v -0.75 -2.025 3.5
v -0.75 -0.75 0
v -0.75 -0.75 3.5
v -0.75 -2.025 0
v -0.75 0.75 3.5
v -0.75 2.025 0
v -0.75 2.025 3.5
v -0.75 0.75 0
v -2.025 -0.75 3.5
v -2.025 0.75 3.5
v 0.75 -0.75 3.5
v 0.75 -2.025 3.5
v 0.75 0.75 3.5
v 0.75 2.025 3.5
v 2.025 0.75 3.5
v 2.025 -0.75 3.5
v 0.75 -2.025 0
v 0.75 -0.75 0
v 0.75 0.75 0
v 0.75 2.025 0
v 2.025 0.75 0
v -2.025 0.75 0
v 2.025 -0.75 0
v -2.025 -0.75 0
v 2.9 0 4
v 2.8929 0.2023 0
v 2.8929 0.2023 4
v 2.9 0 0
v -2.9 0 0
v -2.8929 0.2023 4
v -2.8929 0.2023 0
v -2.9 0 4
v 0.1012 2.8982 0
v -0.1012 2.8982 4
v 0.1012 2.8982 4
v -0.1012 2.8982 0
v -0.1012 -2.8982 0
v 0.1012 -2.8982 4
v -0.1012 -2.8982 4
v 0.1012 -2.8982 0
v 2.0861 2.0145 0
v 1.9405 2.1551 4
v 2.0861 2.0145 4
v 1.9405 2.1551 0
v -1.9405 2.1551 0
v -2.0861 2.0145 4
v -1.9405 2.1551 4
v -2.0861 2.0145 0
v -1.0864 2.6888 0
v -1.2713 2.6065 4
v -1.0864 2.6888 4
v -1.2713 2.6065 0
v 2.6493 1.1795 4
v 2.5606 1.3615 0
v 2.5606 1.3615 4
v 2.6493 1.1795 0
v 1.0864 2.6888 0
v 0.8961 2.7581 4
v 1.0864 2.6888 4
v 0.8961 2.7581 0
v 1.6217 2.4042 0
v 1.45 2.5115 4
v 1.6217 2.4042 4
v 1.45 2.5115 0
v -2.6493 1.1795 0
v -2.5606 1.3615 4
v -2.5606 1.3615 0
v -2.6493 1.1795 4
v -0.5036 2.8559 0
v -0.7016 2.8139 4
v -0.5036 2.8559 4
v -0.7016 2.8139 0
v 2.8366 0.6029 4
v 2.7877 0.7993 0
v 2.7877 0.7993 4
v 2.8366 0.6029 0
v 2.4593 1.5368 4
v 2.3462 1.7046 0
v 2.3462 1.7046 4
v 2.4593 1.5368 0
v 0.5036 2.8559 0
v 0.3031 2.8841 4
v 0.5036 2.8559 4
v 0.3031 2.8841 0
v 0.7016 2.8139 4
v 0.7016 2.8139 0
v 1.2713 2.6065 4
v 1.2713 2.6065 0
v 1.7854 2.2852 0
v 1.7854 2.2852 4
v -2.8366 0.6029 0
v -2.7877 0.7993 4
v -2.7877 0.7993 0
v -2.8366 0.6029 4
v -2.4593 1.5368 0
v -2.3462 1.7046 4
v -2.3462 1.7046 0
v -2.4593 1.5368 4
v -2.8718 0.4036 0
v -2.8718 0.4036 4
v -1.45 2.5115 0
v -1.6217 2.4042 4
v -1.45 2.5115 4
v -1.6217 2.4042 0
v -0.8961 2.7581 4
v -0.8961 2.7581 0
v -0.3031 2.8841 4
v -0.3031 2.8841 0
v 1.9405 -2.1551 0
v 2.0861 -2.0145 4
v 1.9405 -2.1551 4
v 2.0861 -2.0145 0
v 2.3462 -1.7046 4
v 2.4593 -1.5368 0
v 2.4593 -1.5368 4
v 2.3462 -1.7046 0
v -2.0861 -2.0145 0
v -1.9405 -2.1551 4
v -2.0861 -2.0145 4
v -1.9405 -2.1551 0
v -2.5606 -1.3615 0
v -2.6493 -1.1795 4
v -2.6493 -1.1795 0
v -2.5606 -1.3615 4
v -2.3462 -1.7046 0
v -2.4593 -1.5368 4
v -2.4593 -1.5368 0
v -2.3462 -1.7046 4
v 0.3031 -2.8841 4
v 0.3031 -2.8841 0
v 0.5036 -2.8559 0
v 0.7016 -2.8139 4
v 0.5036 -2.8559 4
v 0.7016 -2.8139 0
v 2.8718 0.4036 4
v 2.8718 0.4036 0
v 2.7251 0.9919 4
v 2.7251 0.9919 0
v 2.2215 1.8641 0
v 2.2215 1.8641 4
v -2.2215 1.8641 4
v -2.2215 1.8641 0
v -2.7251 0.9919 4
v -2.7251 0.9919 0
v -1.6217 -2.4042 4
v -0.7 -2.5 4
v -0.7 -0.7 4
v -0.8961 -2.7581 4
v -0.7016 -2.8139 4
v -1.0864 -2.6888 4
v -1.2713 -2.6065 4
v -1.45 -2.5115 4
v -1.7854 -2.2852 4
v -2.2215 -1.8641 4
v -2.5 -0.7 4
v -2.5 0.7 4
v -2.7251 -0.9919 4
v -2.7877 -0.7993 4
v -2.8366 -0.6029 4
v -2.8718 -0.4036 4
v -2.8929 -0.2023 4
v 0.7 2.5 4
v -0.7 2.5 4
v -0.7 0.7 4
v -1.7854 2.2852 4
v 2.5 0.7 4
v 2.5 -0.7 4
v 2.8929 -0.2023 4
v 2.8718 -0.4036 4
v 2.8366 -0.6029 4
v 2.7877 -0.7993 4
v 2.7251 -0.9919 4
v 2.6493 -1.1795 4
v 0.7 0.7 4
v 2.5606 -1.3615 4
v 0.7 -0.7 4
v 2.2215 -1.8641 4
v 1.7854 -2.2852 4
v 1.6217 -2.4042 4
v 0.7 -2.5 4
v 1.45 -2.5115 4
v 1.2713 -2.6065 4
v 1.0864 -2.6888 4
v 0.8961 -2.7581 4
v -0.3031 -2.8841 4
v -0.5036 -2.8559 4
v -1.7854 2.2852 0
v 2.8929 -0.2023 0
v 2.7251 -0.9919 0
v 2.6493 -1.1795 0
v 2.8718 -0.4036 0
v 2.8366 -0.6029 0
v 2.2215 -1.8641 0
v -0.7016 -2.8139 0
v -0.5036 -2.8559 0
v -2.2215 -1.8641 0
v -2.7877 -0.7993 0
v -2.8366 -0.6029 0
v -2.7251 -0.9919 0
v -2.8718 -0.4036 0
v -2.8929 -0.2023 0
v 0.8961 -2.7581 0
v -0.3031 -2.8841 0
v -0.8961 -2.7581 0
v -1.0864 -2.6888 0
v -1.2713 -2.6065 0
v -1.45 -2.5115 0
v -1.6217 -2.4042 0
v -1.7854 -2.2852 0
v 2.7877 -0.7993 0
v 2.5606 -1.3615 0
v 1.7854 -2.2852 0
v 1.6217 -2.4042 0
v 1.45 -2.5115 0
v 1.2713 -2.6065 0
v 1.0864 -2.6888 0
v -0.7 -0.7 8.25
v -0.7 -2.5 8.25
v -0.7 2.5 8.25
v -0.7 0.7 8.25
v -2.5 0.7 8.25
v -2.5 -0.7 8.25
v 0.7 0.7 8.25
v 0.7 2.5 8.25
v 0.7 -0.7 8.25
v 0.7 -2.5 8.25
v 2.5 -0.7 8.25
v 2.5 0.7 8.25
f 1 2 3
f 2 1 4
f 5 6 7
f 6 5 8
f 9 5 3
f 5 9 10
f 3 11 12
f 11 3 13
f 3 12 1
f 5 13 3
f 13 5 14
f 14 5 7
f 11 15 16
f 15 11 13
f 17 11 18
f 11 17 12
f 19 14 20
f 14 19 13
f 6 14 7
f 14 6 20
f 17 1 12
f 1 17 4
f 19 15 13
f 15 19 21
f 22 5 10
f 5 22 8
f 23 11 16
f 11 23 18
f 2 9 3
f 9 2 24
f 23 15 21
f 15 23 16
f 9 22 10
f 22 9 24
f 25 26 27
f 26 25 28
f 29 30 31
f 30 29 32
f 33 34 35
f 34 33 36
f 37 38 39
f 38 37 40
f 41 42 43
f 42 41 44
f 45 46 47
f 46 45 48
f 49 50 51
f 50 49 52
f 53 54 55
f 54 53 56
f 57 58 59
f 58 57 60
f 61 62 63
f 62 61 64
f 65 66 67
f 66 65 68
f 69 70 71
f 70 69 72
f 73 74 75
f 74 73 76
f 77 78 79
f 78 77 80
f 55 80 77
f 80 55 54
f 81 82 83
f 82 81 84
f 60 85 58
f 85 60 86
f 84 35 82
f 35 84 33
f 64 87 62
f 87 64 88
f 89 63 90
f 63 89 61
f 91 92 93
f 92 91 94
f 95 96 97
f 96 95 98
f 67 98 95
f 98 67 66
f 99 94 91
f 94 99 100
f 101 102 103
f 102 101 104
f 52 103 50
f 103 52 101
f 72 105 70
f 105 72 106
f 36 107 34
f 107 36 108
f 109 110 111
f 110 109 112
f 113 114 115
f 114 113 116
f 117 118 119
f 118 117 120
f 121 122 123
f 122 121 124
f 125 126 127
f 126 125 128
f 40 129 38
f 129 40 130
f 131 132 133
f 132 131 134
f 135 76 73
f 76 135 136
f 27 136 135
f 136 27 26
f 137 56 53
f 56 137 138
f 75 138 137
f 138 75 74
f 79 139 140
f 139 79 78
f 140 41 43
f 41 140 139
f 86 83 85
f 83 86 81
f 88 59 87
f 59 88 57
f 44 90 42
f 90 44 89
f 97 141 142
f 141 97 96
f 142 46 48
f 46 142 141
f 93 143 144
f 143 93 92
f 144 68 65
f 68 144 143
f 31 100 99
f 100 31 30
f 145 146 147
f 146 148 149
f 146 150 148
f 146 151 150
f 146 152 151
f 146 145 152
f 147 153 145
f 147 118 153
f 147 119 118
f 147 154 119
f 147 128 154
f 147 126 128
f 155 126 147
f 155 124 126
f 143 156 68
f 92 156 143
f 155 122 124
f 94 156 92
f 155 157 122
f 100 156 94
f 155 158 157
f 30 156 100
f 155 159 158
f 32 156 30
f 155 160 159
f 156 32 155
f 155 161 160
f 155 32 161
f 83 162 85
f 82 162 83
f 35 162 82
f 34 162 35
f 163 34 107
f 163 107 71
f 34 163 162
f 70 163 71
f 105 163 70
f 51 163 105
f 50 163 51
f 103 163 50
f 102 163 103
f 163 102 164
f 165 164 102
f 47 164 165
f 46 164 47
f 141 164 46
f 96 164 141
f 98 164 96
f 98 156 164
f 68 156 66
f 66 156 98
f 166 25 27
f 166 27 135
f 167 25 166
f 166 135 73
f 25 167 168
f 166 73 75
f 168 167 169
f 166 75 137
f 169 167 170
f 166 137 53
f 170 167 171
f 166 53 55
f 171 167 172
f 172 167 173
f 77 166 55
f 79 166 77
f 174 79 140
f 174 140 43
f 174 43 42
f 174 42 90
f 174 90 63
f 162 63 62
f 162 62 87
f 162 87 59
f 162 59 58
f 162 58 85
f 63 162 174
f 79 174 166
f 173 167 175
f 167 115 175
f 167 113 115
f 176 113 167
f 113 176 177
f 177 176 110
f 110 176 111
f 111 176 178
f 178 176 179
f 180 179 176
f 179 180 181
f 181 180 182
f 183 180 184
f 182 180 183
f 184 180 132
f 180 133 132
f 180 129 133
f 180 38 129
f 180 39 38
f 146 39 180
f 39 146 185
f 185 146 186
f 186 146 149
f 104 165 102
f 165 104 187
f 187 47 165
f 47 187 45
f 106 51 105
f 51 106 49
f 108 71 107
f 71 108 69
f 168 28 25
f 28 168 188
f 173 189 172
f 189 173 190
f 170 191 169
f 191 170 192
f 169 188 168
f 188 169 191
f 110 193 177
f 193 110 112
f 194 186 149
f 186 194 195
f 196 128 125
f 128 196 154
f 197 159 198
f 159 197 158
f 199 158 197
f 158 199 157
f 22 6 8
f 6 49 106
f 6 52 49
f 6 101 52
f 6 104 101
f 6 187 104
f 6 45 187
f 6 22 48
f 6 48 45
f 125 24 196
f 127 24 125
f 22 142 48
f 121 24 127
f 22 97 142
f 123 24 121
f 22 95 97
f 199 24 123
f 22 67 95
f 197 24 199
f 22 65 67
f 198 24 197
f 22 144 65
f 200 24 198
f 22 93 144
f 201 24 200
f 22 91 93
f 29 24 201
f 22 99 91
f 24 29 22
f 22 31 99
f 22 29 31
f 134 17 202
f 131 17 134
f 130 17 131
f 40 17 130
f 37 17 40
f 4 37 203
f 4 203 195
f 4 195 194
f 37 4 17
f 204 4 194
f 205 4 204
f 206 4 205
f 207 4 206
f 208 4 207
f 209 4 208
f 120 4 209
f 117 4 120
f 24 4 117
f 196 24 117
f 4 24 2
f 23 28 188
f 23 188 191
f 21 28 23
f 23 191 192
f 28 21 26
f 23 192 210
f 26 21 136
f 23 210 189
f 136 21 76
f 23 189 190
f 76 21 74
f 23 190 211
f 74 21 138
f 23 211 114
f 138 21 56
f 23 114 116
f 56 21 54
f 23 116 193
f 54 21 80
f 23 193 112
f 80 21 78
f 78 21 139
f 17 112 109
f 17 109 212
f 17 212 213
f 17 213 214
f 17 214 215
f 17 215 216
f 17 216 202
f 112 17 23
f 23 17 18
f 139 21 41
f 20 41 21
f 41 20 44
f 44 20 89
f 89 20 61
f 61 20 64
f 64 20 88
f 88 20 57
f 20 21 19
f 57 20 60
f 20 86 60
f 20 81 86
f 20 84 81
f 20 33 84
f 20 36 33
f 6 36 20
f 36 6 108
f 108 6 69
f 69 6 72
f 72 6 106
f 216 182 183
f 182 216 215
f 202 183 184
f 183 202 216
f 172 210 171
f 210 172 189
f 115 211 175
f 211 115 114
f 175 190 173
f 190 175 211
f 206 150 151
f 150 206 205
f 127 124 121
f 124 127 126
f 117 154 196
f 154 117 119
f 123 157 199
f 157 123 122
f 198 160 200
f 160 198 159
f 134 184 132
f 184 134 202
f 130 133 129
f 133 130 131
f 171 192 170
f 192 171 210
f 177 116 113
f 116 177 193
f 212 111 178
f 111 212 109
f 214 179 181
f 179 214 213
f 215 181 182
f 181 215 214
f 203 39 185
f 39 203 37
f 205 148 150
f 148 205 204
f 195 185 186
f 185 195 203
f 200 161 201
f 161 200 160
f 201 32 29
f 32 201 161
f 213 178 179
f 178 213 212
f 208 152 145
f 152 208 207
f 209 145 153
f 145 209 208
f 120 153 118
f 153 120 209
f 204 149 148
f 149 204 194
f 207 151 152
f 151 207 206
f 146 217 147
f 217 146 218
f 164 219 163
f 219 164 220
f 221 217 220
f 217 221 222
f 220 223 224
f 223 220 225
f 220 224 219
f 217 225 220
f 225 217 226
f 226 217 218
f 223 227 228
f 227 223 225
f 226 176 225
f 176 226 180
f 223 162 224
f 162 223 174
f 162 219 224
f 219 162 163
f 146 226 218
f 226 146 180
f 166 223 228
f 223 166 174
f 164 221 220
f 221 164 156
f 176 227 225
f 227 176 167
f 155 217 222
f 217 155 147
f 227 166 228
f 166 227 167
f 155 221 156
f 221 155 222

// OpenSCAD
union () {
  difference () {
    translate ([0, 0, 2.0]) {
      cylinder ($fn=90, h=4.0, r=2.9, center=true);
    }
    translate ([0, 0, 1.25]) {
      union () {
        cube ([1.5, 4.05, 4.5], center=true);
        rotate (a=90.0, v=[0, 0, 1]) {
          cube ([1.5, 4.05, 4.5], center=true);
        }
      }
    }
  }
  translate ([0, 0, 4.0]) {
    translate ([0, 0, 2.0]) {
      union () {
        cube ([1.4, 5.0, 4.5], center=true);
        rotate (a=90.0, v=[0, 0, 1]) {
          cube ([1.4, 5.0, 4.5], center=true);
        }
      }
    }
  }
}
